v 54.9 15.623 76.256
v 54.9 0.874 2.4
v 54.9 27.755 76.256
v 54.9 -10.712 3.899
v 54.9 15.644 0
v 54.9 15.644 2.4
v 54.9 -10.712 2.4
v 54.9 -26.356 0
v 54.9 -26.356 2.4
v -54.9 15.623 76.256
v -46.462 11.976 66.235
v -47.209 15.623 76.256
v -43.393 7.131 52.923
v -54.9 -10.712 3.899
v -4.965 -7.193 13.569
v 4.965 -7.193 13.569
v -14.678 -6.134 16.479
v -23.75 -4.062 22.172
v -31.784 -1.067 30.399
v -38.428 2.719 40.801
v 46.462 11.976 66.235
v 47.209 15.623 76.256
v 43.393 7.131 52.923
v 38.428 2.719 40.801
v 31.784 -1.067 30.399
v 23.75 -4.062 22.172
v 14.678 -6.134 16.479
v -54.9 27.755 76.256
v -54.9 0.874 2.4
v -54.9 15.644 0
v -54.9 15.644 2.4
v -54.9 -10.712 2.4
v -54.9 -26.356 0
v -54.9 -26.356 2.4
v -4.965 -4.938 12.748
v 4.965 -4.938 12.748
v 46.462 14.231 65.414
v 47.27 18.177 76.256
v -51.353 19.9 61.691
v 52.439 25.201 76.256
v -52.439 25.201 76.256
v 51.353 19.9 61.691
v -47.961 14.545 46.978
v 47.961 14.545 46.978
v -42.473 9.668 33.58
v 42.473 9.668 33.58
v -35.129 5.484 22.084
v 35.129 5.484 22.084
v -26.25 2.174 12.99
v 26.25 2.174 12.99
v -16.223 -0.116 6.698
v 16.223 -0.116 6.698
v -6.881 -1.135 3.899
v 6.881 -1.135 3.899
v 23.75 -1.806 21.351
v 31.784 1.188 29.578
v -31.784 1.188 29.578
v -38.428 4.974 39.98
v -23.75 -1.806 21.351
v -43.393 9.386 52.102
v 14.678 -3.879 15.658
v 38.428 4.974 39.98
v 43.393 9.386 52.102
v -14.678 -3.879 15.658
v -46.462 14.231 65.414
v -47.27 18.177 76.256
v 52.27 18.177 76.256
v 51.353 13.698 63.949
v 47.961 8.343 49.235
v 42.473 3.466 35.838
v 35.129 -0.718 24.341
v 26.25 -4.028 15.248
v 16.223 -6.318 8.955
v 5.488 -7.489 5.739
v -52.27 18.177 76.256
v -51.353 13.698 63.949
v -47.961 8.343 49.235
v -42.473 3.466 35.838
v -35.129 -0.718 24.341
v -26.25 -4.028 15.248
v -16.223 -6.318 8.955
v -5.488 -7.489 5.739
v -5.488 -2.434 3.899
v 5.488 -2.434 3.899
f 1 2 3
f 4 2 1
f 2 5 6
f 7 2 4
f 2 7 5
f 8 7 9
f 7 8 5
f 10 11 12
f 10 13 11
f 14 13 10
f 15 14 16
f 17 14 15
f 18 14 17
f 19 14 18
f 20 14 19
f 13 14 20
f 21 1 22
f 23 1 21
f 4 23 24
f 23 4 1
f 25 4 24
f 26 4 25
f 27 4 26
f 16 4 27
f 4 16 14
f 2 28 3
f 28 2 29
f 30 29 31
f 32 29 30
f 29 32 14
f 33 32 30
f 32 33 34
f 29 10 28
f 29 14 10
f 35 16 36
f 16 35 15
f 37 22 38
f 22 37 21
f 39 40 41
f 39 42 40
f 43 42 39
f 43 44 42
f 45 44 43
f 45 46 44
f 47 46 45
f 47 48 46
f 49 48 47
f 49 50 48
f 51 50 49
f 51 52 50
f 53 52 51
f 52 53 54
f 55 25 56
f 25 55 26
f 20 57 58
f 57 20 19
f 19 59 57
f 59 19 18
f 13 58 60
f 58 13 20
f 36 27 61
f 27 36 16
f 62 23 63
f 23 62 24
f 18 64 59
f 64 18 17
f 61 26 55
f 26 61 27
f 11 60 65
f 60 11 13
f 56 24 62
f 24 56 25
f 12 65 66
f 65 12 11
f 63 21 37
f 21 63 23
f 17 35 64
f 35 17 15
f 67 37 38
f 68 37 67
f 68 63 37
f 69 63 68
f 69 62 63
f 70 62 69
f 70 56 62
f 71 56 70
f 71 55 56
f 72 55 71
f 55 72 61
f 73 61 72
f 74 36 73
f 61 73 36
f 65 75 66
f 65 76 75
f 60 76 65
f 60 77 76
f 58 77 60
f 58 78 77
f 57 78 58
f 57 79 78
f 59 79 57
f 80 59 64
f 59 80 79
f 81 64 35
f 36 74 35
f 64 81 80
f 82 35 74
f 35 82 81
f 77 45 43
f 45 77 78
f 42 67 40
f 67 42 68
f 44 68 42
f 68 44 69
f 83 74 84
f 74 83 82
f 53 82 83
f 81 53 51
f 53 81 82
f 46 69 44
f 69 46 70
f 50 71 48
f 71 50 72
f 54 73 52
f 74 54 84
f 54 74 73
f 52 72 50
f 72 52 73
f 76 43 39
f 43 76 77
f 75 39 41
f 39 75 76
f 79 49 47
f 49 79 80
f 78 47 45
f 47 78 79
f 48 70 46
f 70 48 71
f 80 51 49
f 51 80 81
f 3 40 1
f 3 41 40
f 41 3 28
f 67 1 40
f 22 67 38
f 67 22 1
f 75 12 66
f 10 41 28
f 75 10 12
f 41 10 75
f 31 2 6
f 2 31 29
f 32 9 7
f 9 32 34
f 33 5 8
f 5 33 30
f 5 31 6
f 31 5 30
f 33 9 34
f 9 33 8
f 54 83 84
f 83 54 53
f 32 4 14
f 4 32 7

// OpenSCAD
TH = 2.4;
MIC_D_BOTTOM = 105;
MIC_D_UPPER = 95;
MIC_H = 9;

ELONGATION = 1.5;

ANGLE = 70;

difference() {
    rotate([ANGLE,0,0]) translate([0,ELONGATION*MIC_D_BOTTOM/2+TH,0]) difference() {
        translate([0,0,TH]) difference() {
            translate([0,0,(MIC_H+TH)/2-TH]) cube([MIC_D_BOTTOM + 2*TH,MIC_D_BOTTOM*ELONGATION+2*TH,MIC_H+TH], center=true);
            scale([1,ELONGATION,1]) cylinder(d=MIC_D_UPPER, h=MIC_H);
            scale([1,ELONGATION,1]) cylinder(d=MIC_D_BOTTOM, h=MIC_H-TH);
        }
        translate([0,500,0]) cube([1000,1000,1000], center=true);
    }
    translate([0,0,500+(MIC_D_BOTTOM*ELONGATION+2*TH)*sin(ANGLE)/2]) cube([1000,1000,1000],center=true);
}
translate([0,-(MIC_H+TH)*sin(ANGLE)/2,TH/2]) cube([MIC_D_BOTTOM+2*TH,MIC_D_BOTTOM*0.4,TH], center=true);
translate([0,-(MIC_H+TH)*sin(ANGLE)/2,(MIC_H+TH)*cos(ANGLE)/2]) cube([MIC_D_BOTTOM+2*TH,(MIC_H+TH)*sin(ANGLE),(MIC_H+TH)*cos(ANGLE)], center=true);
